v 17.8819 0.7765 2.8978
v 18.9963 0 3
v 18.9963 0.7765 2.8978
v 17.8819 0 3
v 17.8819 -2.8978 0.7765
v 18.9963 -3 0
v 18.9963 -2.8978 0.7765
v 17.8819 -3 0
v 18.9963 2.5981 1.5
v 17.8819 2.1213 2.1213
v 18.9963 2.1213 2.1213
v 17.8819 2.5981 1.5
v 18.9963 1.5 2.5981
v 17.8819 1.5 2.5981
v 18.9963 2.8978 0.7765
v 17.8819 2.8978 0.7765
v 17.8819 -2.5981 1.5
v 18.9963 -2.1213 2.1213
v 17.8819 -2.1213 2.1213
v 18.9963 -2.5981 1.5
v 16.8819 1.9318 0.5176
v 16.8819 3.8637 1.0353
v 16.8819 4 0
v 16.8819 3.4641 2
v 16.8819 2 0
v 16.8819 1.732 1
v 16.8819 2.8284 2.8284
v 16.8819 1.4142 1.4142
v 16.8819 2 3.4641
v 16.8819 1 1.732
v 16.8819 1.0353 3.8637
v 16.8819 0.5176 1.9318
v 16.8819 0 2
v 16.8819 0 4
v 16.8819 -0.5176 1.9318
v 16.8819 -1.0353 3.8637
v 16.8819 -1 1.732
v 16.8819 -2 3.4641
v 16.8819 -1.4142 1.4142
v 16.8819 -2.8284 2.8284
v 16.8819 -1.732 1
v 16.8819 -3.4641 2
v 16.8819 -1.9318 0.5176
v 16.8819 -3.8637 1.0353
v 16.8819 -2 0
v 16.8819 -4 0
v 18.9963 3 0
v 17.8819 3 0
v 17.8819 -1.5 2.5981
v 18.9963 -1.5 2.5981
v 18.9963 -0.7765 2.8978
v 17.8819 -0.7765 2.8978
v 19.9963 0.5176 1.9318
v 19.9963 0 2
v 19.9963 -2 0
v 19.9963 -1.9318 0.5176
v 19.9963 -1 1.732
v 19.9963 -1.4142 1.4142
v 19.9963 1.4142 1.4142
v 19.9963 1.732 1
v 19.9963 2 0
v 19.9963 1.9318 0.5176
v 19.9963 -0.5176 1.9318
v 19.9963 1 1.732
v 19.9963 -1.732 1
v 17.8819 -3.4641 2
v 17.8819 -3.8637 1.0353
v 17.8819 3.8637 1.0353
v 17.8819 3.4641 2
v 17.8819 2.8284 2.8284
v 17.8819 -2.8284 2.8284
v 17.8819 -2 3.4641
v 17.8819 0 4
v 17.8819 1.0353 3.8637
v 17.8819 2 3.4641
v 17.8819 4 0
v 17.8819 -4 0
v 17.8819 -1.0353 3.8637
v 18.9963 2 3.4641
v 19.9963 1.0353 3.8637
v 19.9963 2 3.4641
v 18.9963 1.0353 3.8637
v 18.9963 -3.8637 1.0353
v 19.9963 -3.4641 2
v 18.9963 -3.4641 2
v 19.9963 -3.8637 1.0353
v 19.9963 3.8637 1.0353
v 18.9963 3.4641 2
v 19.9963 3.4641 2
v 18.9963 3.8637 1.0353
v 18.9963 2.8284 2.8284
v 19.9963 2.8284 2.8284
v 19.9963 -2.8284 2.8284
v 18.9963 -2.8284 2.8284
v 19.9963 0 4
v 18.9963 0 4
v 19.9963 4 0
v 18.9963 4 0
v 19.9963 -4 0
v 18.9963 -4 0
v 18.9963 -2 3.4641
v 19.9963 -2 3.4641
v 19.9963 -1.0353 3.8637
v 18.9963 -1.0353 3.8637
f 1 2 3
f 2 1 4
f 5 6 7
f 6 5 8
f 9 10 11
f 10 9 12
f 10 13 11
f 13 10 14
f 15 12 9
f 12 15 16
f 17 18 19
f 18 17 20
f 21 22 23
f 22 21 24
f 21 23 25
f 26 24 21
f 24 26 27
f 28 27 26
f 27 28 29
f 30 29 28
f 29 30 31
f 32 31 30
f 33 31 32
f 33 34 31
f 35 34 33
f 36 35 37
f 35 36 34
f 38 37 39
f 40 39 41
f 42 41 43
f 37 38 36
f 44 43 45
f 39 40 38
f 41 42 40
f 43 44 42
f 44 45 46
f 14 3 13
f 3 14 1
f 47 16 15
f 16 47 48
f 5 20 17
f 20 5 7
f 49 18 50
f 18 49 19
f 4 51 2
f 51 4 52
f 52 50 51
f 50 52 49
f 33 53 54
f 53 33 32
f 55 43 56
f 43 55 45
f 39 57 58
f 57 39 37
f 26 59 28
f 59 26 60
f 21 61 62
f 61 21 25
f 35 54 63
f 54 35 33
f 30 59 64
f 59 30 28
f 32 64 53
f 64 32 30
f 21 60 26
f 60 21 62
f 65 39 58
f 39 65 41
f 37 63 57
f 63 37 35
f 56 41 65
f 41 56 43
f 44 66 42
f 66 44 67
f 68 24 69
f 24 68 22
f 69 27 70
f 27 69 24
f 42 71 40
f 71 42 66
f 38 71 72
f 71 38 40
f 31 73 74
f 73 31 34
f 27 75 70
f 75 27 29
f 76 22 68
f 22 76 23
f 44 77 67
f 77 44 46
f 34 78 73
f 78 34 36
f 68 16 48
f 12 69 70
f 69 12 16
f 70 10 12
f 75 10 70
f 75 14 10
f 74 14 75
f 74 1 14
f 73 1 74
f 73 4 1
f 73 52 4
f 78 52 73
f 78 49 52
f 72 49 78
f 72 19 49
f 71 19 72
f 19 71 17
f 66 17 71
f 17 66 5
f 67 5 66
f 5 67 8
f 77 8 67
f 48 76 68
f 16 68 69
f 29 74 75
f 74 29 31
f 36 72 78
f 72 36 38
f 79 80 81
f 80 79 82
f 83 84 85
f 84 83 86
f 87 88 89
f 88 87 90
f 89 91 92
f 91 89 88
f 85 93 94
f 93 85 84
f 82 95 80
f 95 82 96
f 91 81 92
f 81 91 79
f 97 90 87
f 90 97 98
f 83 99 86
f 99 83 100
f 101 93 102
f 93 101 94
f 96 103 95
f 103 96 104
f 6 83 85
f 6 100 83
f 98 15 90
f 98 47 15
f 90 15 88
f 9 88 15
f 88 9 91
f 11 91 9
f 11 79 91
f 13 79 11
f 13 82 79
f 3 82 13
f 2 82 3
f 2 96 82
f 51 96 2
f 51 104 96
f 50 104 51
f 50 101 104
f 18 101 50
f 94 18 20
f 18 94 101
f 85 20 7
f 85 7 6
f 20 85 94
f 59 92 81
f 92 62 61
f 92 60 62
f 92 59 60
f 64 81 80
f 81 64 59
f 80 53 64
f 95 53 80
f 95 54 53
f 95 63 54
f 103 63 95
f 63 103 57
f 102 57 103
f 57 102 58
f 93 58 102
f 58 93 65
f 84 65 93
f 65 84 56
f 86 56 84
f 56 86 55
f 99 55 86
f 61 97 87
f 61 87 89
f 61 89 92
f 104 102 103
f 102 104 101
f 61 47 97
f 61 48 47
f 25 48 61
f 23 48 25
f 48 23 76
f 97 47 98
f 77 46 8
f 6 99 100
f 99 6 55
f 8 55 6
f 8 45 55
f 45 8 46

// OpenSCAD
// file: ../build_environments.scad
// build_environments.scad: modules to build level sections
//

module pool(diameter=10.0, wall_height=2.0, step_width=3.0, connections=[])
{
    difference() {
        union() {
        difference() {
            cylinder(h=0.5,r1=diameter+step_width,r2=diameter+step_width,$fn=48);
            translate([0,0,-0.1])
                cylinder(h=0.7,r1=diameter,r2=diameter,$fn=48);
        }
        difference() {
            cylinder(h=wall_height,r1=diameter+step_width+1.0,r2=diameter+step_width+1.0,$fn=48);
            translate([0,0,-0.1])
                cylinder(h=wall_height+0.2,r1=diameter+step_width,r2=diameter+step_width,$fn=48);
        }
        }
    
        for (c = connections)
        {
            rotate([0,90,0]) {
                angle = atan2(c[1],c[0]);
                rotate([-angle,0,0]) {
                    cylinder(h=diameter+5.0,r1=c[2],r2=c[2],$fn=48);
                }
            }
        }
    }
}

module straight(length=10.0, width=2.0, dy1=0.0, dy2=0.0, dz=0.0)
{
    dims = [0, 0, 0, 0, 0, (dz/length)];
    matrix = [
        [ 1, dims[0], dims[1], 0 ],
        [ dims[2], 1, dims[4], 0 ],
        [ dims[5], dims[3], 1, 0 ],
        [ 0, 0, 0, 1 ]
    ];
    multmatrix(matrix)
    difference() {
        translate([dy1,0,0])
        union() {
            rotate([0,90,0]) {
                difference() {
                    cylinder(h=(length-dy1-dy2),r1=width+1.0,r2=width+1.0,$fn=24);
                    translate([0,0,-0.1])
                        cylinder(h=(length-dy1-dy2+0.2),r1=width,r2=width,$fn=24);
                }
                difference() {
                    cylinder(h=1.0,r1=width+2.0,r2=width+2.0,$fn=24);
                    translate([0,0,-0.1])
                        cylinder(h=1.2,r1=width,r2=width,$fn=24);
                }
                translate([0,0,(length-dy1-dy2)-1.0]) {
                    difference() {
                        cylinder(h=1.0,r1=width+2.0,r2=width+2.0,$fn=24);
                        translate([0,0,-0.1])
                            cylinder(h=1.2,r1=width,r2=width,$fn=24);
                    }
                }
            }
        }
        translate([0,0,-(2*width+4.0)/2])
            cube([3*length,3*length,2*width+4.0],center=true);
    }
}

module curve(p0=[0,0], center=[0,0], dir=1, angle=0.0, width=2.0)
{
    radius = sqrt((p0[0]-center[0])*(p0[0]-center[0]) + (p0[1]-center[1])*(p0[1]-center[1]));
    if (dir == 0) {
        difference() {
            rotate([0,0,-90])
            difference() {
                rotate_extrude(angle = angle, convexity = 10, $fn=32)
                    translate([radius, 0, 0])
                        circle(r = width+1.0,$fn=24);
                rotate([0,0,-1.0])
                    rotate_extrude(angle = angle+2.0, convexity = 10, $fn=32)
                        translate([radius, 0, 0])
                            circle(r = width,$fn=24);
            }
            translate([0,0,-(2*width+4.0)/2])
                cube([5*radius,5*radius,2*width+4.0],center=true);
        }
    }
    else {
        difference() {
            rotate([0,0,90])
            difference() {
                rotate_extrude(angle = -angle, convexity = 10, $fn=32)
                    translate([radius, 0, 0])
                        circle(r = width+1.0,$fn=24);
                rotate([0,0,1.0])
                    rotate_extrude(angle = -angle-2.0, convexity = 10, $fn=32)
                        translate([radius, 0, 0])
                            circle(r = width,$fn=24);
            }
            translate([0,0,-(2*width+4.0)/2])
                cube([5*radius,5*radius,2*width+4.0],center=true);
        }
    }

}

// test pool
//pool(diameter=12.0000, wall_height=3.0000, step_width=3.0000, connections=[[0.0000,-26.0000,2.0000], [23.6074,0.0000,2.0000]]);

// test straight, slope
//straight(length=26.0000, width=2.0000, dy1=11.8322, dy2=6.7082, dz=0.0000);
//straight(length=29.1549, width=12.0000, dy1=0.0000, dy2=0.0000, dz=-15.0000);

// test curve
//curve(p0=[23.6074, 0.0000], center=[23.6074, 5.0000], dir=0, angle=60.1011, width=2.0000);
//curve(p0=[33.6426, 12.4219], center=[37.9771, 9.9295], dir=1, angle=120.4627, width=2.0000);
// main file
use <../build_environments.scad>;
straight(length=36.8782, width=2.0000, dy1=16.8819, dy2=16.8819, dz=0.0000);
